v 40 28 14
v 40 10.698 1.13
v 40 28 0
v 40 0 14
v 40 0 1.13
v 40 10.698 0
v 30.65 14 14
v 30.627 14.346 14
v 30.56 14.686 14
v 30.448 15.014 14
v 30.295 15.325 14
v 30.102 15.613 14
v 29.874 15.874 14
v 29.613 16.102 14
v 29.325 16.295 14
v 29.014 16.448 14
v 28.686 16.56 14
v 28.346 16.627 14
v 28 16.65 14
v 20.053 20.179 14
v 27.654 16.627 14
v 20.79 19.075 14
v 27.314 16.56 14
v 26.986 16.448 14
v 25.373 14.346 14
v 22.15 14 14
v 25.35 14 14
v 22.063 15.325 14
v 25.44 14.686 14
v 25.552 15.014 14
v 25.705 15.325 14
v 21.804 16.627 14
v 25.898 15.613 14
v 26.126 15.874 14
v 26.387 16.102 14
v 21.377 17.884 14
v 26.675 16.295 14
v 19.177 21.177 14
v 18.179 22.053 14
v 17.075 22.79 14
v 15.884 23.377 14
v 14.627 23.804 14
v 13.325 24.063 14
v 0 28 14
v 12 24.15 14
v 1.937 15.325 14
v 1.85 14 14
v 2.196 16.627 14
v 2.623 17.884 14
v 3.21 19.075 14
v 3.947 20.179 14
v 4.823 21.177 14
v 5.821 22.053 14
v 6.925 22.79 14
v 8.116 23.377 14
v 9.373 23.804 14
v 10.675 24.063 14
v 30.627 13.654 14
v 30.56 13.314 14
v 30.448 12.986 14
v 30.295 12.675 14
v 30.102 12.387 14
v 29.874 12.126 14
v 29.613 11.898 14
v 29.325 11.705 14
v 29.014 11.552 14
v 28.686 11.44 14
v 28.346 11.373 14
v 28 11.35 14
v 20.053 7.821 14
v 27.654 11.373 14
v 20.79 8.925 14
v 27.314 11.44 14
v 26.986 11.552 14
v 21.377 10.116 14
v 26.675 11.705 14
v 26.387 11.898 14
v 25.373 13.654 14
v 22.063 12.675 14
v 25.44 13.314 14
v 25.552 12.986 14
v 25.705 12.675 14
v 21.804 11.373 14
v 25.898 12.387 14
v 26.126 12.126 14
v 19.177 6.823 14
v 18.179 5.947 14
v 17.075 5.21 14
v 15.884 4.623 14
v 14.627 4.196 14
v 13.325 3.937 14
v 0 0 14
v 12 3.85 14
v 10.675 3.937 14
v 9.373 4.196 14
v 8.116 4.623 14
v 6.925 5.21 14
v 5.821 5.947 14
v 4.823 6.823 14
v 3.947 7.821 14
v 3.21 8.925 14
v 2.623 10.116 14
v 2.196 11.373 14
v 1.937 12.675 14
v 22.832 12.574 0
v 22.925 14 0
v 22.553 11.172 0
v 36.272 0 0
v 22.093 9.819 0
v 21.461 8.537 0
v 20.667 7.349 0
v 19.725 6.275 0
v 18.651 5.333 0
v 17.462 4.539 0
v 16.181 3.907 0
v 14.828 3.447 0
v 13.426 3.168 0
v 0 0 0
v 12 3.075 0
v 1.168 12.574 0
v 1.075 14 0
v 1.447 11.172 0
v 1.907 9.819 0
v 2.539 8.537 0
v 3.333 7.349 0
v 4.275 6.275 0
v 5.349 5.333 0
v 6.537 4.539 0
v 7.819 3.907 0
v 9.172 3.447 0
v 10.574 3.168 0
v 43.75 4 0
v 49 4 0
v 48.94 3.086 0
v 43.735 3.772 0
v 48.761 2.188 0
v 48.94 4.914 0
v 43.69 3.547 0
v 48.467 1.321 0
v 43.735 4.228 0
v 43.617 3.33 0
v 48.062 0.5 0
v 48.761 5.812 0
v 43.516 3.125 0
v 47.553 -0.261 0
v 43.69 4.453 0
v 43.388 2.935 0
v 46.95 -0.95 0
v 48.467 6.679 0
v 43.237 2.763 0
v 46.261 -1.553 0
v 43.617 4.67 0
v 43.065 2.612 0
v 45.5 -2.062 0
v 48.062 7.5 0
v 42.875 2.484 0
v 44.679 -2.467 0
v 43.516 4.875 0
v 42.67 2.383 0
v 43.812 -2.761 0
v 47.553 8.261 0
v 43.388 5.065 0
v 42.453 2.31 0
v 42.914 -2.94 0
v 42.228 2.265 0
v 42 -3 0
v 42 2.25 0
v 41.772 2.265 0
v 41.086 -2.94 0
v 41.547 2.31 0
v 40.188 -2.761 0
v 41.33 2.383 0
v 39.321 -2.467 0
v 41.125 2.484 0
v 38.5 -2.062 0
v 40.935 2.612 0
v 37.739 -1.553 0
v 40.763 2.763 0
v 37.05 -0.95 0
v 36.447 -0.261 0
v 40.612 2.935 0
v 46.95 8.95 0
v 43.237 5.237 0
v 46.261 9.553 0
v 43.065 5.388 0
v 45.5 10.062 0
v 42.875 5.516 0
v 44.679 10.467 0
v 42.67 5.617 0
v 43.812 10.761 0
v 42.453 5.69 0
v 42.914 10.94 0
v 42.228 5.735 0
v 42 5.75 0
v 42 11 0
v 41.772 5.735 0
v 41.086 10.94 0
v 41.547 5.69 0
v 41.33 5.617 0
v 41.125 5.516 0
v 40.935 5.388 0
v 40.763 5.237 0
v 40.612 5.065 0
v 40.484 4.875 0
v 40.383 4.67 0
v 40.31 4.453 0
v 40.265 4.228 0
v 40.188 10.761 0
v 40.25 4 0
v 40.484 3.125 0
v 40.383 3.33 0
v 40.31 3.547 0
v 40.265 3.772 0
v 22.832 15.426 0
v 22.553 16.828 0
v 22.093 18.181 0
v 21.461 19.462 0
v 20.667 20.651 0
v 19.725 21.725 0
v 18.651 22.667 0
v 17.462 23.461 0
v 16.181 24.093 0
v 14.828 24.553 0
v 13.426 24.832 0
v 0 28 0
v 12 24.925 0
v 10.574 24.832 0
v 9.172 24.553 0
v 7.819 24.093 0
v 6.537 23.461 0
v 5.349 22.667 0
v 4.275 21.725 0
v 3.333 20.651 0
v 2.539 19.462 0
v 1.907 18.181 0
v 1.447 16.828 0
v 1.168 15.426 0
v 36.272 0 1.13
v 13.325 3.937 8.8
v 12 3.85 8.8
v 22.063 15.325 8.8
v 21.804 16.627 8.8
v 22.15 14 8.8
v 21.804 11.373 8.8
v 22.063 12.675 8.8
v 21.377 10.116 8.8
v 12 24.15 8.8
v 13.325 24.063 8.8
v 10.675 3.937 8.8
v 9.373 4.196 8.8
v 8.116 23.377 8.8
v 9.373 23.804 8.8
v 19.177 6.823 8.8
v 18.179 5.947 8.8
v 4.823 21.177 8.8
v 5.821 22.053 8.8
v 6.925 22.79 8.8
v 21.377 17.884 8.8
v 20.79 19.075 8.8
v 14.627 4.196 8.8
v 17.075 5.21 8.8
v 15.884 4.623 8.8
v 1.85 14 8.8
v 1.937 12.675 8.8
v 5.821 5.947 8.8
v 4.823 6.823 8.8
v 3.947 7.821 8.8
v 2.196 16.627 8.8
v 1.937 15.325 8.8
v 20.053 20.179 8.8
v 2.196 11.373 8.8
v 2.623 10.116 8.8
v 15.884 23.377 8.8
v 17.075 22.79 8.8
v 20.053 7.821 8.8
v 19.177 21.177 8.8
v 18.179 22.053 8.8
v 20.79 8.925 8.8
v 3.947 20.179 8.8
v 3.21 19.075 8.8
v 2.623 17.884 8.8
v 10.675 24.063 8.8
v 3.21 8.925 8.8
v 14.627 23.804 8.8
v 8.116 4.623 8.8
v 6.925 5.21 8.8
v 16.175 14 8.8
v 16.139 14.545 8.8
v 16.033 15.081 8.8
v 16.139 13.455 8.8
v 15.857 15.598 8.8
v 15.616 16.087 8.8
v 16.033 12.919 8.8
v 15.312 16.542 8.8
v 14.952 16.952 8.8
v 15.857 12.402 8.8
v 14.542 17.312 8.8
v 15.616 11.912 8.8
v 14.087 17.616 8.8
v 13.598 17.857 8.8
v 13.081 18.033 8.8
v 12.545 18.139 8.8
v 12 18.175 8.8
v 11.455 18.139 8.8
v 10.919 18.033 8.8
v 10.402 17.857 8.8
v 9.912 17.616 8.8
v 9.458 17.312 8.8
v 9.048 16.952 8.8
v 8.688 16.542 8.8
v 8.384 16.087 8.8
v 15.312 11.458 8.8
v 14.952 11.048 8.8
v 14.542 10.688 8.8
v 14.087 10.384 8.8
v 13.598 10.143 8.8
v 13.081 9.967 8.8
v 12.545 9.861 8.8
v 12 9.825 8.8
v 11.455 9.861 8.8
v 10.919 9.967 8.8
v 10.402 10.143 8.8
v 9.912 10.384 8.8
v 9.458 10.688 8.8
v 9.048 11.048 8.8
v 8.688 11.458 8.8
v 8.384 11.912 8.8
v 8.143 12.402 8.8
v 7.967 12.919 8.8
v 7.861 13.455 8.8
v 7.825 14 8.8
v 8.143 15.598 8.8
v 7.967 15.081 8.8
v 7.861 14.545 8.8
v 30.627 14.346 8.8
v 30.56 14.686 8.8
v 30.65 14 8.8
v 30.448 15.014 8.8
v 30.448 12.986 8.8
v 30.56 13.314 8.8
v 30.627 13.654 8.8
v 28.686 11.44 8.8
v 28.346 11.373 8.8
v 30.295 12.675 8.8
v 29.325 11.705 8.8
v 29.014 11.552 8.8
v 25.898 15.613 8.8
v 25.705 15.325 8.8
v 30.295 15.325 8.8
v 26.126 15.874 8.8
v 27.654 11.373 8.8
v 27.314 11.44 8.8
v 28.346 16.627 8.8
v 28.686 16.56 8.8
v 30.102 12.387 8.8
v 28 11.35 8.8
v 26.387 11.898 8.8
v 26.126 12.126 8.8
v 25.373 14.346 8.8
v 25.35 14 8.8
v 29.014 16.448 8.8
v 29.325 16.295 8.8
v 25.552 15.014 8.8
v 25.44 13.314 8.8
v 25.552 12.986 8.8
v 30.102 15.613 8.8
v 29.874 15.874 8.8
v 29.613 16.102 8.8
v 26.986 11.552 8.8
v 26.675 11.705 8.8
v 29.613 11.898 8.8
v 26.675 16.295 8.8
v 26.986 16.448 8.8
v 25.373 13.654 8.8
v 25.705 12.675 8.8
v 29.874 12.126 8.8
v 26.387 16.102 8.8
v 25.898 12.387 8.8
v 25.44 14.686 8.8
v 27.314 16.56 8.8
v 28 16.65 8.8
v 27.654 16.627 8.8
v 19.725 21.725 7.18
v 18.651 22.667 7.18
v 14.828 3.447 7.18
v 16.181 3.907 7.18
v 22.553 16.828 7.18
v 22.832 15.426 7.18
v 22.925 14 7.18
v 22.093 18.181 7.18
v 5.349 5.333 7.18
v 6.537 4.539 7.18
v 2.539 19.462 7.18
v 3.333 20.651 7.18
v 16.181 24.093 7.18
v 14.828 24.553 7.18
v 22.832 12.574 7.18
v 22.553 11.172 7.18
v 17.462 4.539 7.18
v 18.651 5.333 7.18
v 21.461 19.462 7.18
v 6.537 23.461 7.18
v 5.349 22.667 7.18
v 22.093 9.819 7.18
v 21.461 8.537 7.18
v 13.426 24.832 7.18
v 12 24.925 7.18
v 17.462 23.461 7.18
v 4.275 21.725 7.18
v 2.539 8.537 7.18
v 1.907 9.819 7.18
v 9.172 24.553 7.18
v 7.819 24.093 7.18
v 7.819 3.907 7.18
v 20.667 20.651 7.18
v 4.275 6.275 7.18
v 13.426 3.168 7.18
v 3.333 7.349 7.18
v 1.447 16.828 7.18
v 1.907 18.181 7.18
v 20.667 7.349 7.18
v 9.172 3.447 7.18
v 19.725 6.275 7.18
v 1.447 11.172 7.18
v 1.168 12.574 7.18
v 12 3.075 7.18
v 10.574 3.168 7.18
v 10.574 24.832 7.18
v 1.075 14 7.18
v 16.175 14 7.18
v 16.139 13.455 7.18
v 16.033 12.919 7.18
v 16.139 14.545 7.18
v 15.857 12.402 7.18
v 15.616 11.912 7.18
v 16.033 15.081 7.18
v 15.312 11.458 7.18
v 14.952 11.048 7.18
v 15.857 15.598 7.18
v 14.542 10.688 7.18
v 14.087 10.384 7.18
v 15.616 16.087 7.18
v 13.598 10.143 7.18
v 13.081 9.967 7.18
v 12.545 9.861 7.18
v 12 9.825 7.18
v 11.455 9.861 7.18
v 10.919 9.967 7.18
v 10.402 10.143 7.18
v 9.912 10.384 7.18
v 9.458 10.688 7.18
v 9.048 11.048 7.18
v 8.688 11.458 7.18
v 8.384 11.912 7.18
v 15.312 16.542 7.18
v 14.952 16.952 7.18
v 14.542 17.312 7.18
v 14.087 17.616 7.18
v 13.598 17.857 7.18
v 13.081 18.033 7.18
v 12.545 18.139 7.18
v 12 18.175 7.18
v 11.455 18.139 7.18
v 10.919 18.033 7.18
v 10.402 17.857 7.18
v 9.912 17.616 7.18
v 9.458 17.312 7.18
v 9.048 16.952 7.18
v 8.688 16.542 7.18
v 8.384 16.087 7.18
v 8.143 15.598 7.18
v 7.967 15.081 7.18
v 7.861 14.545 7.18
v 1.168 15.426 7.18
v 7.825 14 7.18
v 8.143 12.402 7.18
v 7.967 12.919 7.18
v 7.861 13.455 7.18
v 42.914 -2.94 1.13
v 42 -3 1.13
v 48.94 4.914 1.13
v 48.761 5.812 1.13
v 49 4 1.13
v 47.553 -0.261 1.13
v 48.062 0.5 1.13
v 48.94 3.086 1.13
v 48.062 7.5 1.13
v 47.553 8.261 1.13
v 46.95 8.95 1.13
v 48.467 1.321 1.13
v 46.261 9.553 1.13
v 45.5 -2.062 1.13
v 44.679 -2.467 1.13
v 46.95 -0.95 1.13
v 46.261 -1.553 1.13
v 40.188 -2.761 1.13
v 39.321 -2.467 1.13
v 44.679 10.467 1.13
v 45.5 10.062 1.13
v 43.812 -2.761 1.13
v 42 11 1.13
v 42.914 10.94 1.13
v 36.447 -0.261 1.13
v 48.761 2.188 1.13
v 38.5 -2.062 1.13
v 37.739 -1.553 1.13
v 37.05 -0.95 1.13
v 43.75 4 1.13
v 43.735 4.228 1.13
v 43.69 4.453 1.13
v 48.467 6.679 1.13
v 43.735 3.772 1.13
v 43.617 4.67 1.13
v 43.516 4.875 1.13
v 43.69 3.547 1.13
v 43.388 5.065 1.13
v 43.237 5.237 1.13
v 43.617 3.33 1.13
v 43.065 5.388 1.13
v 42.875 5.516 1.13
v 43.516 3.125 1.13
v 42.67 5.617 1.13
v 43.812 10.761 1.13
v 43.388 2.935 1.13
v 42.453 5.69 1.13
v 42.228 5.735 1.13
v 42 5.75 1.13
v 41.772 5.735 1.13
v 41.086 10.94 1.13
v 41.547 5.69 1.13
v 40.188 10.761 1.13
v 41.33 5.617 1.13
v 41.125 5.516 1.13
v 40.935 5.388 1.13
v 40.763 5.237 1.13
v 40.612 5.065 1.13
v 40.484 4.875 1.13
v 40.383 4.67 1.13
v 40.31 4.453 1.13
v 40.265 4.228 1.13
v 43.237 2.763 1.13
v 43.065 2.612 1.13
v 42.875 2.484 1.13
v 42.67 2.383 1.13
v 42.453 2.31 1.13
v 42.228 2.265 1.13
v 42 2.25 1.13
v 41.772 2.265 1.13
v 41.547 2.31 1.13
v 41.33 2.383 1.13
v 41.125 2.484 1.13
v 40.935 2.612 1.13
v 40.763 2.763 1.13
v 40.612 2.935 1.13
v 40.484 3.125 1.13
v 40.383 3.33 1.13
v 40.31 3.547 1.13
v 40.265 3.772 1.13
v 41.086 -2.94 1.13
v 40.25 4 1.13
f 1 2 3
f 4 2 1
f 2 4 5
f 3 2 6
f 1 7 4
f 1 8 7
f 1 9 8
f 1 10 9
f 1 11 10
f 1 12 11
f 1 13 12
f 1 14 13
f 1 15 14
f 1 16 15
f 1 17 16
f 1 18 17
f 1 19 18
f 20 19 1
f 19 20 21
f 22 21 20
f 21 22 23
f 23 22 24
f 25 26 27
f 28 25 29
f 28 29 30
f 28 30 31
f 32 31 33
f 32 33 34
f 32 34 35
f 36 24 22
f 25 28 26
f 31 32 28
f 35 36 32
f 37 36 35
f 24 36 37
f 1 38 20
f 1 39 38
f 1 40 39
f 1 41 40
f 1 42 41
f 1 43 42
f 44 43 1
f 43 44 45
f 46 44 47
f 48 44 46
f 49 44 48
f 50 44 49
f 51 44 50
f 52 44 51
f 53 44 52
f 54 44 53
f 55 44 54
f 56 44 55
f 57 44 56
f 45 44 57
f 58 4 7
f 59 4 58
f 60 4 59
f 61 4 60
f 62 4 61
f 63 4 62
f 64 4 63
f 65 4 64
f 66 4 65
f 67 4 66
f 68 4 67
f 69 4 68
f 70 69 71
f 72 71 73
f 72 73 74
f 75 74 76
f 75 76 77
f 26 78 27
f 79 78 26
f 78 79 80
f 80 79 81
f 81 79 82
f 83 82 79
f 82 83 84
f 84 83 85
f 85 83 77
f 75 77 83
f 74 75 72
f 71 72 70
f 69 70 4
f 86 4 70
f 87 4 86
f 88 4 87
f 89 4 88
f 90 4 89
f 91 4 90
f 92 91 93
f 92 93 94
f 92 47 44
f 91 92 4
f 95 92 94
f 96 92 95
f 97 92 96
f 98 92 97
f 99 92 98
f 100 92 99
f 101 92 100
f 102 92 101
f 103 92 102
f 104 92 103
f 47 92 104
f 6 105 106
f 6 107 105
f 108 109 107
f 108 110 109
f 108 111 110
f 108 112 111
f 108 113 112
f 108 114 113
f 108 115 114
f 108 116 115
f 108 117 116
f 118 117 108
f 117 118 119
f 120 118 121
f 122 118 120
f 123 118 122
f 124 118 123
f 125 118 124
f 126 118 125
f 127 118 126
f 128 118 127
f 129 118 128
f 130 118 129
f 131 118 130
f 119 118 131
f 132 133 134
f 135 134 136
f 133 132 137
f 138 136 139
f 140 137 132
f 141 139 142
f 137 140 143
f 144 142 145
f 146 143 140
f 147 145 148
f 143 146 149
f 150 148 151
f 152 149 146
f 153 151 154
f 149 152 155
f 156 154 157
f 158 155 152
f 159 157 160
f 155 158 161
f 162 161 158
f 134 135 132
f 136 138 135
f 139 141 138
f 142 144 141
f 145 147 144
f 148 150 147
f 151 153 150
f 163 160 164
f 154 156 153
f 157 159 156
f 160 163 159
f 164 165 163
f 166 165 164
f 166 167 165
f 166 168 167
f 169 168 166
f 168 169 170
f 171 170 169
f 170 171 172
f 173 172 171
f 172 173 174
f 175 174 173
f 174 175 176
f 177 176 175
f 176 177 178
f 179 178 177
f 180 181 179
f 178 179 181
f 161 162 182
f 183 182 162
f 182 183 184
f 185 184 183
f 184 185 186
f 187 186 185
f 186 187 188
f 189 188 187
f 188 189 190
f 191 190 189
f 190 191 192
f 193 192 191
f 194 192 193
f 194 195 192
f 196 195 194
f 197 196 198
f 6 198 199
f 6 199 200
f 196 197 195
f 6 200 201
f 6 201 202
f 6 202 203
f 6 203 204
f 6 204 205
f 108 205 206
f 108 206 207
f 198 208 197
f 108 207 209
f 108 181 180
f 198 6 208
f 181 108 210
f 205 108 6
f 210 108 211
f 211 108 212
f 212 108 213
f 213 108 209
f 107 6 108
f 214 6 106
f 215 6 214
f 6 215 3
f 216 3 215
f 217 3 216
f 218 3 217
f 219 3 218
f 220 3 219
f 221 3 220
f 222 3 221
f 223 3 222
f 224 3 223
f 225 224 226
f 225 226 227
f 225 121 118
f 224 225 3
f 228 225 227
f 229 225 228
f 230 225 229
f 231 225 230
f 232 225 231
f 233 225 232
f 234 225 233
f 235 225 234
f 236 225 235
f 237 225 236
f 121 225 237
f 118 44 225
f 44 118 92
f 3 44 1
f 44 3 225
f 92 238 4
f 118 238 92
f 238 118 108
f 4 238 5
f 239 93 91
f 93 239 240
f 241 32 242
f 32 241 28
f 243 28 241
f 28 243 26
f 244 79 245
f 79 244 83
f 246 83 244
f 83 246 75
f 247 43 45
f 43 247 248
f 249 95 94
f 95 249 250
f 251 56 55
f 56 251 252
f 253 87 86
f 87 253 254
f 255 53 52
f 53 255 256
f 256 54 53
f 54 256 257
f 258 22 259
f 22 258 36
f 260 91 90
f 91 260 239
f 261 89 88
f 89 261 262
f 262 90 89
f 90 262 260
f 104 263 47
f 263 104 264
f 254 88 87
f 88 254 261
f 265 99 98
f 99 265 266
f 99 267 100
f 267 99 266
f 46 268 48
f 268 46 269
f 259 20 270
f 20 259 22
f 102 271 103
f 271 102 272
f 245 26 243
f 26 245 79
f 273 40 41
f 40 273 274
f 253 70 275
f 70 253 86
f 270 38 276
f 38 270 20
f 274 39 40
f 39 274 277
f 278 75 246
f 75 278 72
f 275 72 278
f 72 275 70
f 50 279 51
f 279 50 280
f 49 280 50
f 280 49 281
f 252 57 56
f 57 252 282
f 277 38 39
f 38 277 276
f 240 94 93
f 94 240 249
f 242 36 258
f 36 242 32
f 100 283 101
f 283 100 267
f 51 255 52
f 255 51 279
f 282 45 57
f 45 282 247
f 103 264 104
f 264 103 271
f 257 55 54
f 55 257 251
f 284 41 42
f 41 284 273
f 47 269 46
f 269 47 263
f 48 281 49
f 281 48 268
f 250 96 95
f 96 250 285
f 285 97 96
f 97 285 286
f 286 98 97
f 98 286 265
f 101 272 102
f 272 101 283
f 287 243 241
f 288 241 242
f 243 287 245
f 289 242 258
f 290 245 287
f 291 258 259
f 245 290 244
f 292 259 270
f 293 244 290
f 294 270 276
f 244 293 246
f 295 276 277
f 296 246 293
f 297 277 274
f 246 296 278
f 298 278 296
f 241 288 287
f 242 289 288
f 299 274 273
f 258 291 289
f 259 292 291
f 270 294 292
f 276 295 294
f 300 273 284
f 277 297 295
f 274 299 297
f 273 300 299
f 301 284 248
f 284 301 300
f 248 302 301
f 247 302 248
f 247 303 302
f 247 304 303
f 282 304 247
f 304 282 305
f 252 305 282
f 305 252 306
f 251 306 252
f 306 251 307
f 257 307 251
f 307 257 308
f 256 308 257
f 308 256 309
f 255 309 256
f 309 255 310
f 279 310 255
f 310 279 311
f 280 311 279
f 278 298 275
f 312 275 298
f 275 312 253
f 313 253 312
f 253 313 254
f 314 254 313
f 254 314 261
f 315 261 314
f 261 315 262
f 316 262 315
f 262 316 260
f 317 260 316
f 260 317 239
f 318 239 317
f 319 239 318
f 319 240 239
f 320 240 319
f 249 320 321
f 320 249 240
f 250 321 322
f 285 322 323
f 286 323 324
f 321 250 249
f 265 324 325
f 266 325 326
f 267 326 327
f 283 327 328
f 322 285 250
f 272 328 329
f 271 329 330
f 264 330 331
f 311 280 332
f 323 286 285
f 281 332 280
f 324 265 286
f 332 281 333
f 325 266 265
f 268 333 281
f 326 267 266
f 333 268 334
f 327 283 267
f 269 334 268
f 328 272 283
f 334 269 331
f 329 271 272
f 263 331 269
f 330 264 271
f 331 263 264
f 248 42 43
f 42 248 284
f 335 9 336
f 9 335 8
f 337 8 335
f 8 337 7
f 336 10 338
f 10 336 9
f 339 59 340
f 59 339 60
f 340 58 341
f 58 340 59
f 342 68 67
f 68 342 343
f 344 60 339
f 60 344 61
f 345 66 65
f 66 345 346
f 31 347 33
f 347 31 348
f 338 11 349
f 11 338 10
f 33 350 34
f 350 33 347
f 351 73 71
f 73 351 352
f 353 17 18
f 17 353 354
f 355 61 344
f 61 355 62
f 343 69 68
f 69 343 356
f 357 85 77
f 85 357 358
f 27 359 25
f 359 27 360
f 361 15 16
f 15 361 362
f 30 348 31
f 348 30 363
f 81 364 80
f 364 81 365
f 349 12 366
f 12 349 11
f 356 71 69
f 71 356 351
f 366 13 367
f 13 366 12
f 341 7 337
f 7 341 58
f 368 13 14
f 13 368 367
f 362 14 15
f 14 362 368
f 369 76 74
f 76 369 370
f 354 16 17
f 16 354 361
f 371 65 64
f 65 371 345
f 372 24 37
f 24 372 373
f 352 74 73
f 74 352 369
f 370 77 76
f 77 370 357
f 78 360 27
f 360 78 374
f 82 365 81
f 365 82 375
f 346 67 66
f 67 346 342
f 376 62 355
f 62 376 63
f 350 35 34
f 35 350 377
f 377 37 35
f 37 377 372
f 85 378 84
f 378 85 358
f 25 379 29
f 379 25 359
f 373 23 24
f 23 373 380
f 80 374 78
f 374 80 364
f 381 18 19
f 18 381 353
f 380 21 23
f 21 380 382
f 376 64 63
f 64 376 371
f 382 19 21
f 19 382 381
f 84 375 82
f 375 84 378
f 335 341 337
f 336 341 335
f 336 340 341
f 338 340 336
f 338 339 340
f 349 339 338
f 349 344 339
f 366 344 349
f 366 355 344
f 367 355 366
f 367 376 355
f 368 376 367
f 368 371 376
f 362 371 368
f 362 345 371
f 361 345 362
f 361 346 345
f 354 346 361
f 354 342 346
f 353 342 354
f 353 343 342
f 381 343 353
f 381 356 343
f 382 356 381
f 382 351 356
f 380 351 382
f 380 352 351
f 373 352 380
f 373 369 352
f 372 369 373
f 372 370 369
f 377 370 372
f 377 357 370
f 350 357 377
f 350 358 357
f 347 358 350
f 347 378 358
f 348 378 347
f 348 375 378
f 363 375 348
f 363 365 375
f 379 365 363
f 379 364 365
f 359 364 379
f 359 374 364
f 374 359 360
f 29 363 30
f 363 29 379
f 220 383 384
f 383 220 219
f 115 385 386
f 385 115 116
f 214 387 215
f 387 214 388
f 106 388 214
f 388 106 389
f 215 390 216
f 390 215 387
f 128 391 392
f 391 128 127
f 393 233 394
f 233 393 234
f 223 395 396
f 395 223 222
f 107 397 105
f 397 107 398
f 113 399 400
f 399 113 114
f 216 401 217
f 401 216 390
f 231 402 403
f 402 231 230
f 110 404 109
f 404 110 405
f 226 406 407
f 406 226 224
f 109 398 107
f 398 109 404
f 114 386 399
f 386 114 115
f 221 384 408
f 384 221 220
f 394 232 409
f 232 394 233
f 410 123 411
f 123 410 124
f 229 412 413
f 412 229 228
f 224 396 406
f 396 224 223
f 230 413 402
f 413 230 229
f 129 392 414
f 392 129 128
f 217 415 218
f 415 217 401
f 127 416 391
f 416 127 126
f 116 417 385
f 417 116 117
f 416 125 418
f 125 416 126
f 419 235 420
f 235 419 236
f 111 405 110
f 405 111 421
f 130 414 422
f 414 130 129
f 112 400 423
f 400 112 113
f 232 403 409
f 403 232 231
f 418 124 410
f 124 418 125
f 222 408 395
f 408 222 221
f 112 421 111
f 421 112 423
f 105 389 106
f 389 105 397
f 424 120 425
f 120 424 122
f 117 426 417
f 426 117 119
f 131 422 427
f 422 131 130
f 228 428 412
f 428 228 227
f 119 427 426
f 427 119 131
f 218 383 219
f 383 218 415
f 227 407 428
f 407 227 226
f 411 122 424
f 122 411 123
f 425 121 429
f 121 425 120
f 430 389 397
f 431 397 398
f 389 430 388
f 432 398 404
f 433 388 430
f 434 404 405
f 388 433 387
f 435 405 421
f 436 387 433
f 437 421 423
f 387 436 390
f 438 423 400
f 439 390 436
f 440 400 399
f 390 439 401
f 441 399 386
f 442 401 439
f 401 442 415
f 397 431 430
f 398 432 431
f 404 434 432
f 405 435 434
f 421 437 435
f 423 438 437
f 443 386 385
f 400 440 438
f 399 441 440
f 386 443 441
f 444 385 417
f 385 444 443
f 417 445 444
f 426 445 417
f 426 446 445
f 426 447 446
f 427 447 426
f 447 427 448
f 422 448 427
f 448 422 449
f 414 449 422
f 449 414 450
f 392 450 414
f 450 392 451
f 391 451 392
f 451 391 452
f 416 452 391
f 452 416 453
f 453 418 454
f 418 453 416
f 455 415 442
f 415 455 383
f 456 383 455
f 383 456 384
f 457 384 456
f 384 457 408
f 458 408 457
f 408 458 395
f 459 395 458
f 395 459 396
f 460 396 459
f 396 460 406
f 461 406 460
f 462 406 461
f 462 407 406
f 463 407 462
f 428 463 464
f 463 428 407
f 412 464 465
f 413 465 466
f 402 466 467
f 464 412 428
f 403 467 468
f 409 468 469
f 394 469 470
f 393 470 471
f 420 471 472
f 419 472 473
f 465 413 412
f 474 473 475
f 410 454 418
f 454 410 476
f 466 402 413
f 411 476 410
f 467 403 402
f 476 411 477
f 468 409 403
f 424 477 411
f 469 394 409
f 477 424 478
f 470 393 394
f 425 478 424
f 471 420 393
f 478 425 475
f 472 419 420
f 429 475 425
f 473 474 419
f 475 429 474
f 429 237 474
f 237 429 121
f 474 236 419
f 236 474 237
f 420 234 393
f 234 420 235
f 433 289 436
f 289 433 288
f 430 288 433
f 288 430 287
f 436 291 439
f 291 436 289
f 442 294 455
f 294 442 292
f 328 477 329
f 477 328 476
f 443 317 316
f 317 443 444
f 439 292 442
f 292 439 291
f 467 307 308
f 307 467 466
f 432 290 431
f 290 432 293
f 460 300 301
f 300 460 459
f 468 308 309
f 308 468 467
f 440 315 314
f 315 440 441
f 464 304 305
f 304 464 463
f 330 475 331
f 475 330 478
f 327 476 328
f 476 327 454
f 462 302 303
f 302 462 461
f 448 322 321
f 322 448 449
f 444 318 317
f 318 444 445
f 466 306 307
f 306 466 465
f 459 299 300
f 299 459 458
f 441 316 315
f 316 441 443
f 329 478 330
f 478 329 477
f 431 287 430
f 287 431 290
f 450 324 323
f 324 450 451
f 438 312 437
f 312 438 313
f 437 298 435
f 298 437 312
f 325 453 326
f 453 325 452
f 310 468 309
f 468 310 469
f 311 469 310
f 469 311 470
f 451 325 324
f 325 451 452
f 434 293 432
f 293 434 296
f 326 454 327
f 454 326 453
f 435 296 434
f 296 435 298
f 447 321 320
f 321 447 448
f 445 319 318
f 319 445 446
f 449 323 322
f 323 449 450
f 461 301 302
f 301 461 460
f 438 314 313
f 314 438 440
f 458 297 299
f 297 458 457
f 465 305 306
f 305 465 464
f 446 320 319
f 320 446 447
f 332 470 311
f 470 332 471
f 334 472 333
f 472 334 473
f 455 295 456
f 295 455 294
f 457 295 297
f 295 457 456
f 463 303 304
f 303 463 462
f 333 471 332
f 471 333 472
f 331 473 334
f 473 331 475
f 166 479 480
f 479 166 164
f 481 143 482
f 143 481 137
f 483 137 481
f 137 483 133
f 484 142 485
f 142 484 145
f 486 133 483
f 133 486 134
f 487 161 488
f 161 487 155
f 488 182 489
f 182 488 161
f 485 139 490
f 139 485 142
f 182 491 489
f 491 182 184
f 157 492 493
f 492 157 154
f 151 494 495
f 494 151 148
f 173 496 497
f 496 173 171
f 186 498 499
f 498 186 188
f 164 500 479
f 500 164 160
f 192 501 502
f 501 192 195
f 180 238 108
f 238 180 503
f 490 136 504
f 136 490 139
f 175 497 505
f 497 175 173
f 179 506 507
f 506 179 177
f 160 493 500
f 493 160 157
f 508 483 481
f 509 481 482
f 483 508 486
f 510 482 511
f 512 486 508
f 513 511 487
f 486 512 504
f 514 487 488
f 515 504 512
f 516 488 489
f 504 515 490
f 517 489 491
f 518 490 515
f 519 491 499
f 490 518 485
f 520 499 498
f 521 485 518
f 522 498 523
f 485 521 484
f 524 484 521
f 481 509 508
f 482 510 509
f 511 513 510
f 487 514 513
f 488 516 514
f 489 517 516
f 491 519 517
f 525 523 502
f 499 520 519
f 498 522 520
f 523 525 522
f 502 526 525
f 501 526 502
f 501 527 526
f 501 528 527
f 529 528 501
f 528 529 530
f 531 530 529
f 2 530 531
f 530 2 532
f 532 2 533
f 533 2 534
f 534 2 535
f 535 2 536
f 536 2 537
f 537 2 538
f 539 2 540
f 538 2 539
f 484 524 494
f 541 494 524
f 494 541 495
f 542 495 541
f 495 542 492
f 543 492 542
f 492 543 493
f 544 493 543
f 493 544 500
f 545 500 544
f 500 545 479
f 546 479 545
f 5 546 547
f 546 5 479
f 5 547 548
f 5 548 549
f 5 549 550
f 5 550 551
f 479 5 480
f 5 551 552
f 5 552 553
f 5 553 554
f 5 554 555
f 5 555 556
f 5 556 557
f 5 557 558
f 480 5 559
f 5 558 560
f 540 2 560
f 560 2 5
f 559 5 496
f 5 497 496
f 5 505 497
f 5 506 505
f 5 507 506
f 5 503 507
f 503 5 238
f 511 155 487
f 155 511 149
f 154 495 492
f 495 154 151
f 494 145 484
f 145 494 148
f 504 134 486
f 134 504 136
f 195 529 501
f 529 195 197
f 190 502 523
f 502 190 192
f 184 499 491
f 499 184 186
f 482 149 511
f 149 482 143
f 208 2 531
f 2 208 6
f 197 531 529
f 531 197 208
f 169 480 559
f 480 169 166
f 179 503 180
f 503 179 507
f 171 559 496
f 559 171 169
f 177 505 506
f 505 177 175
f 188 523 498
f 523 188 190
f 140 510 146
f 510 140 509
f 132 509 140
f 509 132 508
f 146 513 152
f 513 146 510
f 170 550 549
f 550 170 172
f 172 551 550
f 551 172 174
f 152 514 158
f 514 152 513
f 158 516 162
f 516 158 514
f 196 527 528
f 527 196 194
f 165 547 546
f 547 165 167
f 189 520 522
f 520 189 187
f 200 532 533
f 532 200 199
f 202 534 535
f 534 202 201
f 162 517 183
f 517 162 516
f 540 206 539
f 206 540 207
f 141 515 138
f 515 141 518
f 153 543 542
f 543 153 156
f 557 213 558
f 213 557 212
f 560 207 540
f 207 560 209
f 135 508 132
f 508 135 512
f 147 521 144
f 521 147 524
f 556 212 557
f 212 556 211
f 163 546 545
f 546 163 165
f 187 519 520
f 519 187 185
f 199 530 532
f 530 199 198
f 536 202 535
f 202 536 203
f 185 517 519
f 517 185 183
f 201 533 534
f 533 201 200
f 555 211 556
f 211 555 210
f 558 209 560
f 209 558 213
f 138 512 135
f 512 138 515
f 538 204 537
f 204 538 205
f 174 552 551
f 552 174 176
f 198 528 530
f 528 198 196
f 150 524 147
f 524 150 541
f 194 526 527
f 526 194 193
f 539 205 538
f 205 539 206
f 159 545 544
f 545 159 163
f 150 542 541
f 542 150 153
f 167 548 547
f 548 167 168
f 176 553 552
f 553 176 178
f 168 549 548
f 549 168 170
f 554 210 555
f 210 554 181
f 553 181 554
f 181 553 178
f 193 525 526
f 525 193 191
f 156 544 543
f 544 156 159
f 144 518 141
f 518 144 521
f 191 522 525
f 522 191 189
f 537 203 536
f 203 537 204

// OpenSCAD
// file: parameters.scad
// =============================================================================
// Gen-AV Vernier flux-claw hyper - WOUND-AWARE (HARD GATE)
// Dual-rotor vernier: Rotor B +22.5 deg vs 12-slot stator; O5 flux claws
// =============================================================================

wire_awg            = 26;
wire_od             = 0.45;
turns               = 205;      // +5 vs Gen-AS 200
fill                = 0.70;
layers_per_face     = 2;
wind_build_axial    = layers_per_face * wire_od * fill;   // 0.63 mm
wind_build_radial   = 3 * wire_od * fill;                 // 0.945 mm

coil_id_r           = 15.0;
coil_od_r           = 62.0;
span_deg            = 25.0;
former_web          = 1.22;     // thinner vs AS 1.25
flange_t            = 0.60;
wall                = 1.2;
slot_w              = 2.4;
mount_hole          = 3.5;
tab_len             = 7.0;

former_bare_h       = former_web + 2 * flange_t;            // 2.42 mm
coil_envelope_h     = former_bare_h + 2 * wind_build_axial; // 3.68 mm

run_clear           = 0.50;
gap_spacer_h        = run_clear + wind_build_axial;         // 1.13 mm
m2m                 = coil_envelope_h + 2 * run_clear;      // 4.68 mm

coil_stations       = 12;
bay_r_in            = coil_id_r - 2.0 - wind_build_radial;
bay_r_out           = coil_od_r + 2.0 + wind_build_radial;
bay_span            = span_deg + 4.0;
bay_offset          = 2.0;
stator_thick        = former_bare_h;
stator_od           = 160.0;
shaft_clear_stator  = 34.0;
coil_mount_r        = 25.5;

large_pocket_d      = 20.3;
small_pocket_d      = 5.3;
pocket_h            = 5.2;
large_n             = 8;
R_large             = 38.5;     // closer to copper centroid vs AS R=39.0
R_small_inner       = 24.5;
R_small_mid         = 38.5;
R_small_outer       = 54.5;
carrier_od          = 156.0;
carrier_thick       = 7.5;
hub_h               = 10.0;
hub_od              = 30.0;
rotor_b_offset_deg  = 22.5;     // vernier offset vs 12-slot stator

shaft_bore          = 8.35;
bearing_d           = 21.85;
bearing_h           = 7.2;
m3_clear            = 3.5;
bolt_r_inner        = 36.0;
bolt_n_inner        = 6;
flange_bolt_r       = 72.0;
flange_bolt_n       = 6;
brace_r             = 68.0;
brace_d             = 4.3;
brace_n             = 4;

spacer_pad_od       = 14.0;
spacer_pad_id       = m3_clear;
endbell_od          = 160.0;
endbell_thick       = 8.0;
endbell_shaft_clear = 10.0;

$fn = 64;
// main file
// Gen-AV fit coupon — magnet pockets + 608 + spacer height
include <parameters.scad>;
$fn = 48;
block_w = 40; block_d = 28; block_h = 14;
difference() {
    cube([block_w, block_d, block_h]);
    translate([12, block_d/2, block_h - pocket_h])
        cylinder(d=large_pocket_d, h=pocket_h + 0.2);
    translate([28, block_d/2, block_h - pocket_h])
        cylinder(d=small_pocket_d, h=pocket_h + 0.2);
    translate([12, block_d/2, -0.02])
        cylinder(d=bearing_d, h=bearing_h);
    translate([12, block_d/2, -0.1])
        cylinder(d=shaft_bore, h=block_h + 1);
}
translate([block_w + 2, 4, 0])
    difference() {
        cylinder(d=spacer_pad_od, h=gap_spacer_h);
        translate([0, 0, -0.1]) cylinder(d=spacer_pad_id, h=gap_spacer_h + 0.2);
    }
